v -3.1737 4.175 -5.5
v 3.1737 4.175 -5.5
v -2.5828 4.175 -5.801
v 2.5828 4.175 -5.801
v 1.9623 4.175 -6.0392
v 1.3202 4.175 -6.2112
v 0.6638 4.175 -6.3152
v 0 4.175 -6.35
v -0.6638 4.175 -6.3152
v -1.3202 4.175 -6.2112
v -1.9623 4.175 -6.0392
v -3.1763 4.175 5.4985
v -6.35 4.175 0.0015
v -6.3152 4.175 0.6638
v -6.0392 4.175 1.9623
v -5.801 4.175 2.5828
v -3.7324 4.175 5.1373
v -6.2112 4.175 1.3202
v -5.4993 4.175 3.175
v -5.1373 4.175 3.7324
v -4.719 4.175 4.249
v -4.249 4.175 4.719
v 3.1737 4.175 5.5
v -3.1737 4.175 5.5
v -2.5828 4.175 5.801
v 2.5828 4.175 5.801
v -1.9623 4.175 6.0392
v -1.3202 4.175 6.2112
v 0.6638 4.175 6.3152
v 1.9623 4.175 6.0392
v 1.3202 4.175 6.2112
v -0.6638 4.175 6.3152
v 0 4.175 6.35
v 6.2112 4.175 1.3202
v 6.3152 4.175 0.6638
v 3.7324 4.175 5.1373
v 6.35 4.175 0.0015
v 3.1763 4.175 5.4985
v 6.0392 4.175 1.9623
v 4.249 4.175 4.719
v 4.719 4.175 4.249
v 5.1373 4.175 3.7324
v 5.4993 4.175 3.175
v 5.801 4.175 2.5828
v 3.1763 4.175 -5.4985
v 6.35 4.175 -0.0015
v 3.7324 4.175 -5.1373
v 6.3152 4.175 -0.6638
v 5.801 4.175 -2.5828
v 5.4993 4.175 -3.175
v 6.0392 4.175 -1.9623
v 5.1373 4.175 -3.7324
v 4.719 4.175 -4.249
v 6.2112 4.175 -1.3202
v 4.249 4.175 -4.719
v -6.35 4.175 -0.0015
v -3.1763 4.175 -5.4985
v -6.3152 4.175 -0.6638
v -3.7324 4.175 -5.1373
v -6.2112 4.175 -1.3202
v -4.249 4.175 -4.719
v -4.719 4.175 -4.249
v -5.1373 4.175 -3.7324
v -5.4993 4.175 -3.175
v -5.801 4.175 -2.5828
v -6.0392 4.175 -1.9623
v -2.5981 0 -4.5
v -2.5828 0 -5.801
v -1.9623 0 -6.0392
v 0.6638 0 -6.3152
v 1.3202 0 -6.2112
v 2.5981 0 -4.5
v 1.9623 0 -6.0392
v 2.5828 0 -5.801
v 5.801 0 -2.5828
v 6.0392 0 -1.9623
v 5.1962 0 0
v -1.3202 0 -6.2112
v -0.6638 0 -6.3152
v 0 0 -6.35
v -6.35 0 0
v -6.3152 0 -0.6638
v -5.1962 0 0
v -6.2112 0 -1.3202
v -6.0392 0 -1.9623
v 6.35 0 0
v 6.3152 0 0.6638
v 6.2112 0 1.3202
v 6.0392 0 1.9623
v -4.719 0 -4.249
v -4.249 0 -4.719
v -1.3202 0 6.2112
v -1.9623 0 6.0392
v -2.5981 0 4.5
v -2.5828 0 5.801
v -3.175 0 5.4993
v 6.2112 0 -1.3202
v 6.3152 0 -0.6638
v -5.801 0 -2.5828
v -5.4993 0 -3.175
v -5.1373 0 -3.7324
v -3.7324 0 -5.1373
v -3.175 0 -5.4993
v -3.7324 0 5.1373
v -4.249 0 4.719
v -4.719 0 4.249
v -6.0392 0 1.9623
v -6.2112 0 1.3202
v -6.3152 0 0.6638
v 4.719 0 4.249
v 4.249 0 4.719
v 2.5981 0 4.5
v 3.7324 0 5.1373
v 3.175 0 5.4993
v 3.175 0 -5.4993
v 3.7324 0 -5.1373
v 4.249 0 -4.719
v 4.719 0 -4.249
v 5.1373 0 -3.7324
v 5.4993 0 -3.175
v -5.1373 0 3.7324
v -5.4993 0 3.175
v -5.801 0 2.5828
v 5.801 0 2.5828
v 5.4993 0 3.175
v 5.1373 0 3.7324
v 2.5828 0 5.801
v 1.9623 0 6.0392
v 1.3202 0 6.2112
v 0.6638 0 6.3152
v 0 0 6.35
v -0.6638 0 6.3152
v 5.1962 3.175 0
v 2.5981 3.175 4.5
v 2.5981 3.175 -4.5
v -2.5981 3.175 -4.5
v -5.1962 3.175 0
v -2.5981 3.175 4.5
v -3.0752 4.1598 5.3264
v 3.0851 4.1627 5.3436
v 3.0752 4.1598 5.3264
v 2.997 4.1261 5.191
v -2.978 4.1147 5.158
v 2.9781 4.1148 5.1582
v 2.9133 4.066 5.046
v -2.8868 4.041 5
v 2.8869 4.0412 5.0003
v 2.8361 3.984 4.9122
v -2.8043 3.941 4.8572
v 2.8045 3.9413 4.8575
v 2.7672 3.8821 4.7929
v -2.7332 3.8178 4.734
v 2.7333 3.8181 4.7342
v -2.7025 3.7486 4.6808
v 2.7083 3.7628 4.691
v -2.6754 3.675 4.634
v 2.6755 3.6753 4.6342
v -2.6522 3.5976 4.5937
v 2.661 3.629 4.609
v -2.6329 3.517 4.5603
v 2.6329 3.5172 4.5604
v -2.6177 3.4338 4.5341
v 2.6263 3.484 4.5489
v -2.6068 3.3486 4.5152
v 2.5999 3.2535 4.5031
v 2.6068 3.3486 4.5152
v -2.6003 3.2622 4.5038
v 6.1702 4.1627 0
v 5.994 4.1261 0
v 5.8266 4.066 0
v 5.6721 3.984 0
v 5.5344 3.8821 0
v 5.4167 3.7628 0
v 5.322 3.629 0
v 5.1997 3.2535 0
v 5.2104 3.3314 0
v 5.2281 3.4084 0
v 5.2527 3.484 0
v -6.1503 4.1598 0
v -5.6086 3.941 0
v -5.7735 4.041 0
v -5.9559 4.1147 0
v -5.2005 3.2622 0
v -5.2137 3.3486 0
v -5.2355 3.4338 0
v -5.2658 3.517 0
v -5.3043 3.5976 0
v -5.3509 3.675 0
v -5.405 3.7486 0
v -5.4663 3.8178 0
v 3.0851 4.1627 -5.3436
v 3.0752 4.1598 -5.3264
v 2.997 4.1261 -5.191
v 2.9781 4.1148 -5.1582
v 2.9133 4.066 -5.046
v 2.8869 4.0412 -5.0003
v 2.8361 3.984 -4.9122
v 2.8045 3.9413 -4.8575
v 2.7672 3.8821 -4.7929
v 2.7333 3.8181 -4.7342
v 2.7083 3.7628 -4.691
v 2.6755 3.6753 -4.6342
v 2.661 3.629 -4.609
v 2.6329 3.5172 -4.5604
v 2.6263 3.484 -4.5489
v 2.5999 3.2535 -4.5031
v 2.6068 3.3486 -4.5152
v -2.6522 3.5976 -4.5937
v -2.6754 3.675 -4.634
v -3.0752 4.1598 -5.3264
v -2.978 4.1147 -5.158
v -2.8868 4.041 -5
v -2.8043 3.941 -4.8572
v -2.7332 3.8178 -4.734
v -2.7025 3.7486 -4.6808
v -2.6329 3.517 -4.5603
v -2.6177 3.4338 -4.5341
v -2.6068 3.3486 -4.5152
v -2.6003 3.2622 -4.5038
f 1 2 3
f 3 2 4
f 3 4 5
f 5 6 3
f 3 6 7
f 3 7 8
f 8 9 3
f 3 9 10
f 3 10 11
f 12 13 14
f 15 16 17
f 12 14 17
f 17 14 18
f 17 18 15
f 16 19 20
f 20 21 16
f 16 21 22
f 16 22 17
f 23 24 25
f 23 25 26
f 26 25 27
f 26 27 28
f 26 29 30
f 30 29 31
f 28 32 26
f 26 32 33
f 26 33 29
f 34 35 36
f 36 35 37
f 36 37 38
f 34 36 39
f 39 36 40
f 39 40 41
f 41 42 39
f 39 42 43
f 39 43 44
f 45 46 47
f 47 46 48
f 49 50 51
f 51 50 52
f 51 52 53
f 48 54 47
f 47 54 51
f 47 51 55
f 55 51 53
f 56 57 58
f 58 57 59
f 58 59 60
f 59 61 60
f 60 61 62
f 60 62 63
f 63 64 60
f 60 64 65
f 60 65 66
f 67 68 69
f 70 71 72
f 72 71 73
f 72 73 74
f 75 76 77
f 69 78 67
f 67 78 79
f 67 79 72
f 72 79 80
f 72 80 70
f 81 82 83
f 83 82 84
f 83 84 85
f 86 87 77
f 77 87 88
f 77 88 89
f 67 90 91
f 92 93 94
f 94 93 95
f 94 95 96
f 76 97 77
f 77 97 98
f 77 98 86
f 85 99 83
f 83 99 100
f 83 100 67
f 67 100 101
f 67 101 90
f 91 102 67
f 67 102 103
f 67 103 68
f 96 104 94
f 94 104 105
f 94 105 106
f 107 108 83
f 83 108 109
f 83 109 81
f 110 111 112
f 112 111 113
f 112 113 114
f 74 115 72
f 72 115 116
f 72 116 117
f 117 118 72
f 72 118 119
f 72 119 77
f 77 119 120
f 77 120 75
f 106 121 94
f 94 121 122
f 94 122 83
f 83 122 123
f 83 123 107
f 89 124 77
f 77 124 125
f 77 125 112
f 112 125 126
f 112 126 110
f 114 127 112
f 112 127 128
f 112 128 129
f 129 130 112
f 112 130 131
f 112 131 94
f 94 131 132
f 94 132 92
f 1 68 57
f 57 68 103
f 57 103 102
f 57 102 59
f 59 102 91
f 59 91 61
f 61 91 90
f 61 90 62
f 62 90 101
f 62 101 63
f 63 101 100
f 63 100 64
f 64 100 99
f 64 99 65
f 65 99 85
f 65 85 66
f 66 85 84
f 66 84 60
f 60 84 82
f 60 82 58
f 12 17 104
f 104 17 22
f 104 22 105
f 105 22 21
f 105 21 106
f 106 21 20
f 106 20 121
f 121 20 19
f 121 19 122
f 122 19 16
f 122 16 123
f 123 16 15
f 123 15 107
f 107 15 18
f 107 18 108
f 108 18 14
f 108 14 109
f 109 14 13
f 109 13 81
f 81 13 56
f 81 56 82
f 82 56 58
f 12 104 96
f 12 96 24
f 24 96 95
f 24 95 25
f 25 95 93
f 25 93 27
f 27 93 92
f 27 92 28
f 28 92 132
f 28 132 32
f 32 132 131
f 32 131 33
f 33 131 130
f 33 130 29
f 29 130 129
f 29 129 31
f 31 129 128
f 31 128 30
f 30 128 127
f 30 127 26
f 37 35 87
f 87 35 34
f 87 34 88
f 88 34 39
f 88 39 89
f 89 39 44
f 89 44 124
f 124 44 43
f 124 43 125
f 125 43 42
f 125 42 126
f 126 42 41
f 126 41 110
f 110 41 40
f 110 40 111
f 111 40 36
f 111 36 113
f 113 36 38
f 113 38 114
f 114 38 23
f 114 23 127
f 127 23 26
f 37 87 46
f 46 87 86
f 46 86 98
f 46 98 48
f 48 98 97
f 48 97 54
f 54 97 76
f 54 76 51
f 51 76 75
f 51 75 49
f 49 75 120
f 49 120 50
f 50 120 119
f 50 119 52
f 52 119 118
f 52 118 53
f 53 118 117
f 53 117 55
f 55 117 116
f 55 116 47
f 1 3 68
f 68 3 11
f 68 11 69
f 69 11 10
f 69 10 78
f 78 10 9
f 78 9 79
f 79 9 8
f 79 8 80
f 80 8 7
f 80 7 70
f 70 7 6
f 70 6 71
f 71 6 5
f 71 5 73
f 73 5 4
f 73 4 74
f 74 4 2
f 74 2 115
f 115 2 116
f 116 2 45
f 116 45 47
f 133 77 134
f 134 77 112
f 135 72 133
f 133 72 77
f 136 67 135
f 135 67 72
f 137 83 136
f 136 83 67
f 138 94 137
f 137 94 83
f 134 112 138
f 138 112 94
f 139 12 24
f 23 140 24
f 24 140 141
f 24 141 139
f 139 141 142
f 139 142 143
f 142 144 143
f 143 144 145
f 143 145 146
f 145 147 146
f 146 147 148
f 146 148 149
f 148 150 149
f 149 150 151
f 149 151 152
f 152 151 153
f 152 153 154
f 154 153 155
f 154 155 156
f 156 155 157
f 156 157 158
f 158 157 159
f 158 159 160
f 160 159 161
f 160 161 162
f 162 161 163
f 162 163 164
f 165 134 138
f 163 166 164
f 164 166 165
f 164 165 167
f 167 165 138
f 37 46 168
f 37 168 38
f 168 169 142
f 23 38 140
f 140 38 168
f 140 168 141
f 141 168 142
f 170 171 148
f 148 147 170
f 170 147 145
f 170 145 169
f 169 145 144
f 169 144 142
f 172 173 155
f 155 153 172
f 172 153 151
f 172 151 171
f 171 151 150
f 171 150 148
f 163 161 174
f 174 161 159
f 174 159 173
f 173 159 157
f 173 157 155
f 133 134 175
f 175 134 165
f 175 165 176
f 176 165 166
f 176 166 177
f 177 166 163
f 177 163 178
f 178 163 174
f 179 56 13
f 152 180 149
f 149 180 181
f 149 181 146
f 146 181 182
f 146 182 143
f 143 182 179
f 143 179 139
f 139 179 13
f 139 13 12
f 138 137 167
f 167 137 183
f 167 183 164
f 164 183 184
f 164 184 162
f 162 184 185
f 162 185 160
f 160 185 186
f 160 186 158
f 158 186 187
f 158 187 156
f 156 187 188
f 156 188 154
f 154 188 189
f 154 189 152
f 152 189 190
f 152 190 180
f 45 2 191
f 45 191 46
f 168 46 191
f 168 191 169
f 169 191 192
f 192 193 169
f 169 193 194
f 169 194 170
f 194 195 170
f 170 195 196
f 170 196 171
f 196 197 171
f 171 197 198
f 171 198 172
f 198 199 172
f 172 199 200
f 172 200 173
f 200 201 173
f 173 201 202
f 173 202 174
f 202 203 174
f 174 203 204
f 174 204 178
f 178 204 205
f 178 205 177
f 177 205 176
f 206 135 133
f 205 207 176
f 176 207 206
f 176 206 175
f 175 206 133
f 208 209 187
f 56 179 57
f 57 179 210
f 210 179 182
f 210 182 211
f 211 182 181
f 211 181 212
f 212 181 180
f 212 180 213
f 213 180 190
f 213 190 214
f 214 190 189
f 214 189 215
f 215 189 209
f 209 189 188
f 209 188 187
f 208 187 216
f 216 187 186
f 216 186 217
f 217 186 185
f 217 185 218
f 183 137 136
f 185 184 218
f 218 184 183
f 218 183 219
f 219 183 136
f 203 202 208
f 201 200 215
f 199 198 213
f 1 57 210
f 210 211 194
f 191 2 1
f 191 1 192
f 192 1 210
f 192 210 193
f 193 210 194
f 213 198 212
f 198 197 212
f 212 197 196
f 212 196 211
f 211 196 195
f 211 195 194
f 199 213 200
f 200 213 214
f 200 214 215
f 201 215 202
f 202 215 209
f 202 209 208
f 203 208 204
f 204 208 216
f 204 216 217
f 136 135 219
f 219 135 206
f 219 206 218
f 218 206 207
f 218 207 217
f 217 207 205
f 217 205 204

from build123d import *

# Parameters (mm, degrees)
SKETCH1_R           = 6.35
BOSS_EXTRUDE1_DEPTH = 4.175
FILLET1_R           = 1


with BuildPart() as part:
    # Sketch1 → Boss-Extrude1 (new body)
    with BuildSketch(Plane(origin=(0, 0, 0), x_dir=(1, 0, 0), z_dir=(0, 1, 0))):
        with Locations(Location((0, 0, 0), (0, 0, 270))):
            Circle(SKETCH1_R)
        Polygon((5.196152423, 0), (2.598076211, 4.5), (-2.598076211, 4.5), (-5.196152423, 0), (-2.598076211, -4.5), (2.598076211, -4.5), align=None, mode=Mode.SUBTRACT)
    extrude(amount=BOSS_EXTRUDE1_DEPTH)

    # Fillet1
    # the kernel refuses this fillet: 1 mm, written as the material it takes off along each edge
    with BuildSketch(Plane(origin=(1.348076211, 4.175, 6.665063509), x_dir=(0, -1, 0), z_dir=(0.4999999999999997, 0, -0.8660254037844388))) as fillet1_piece_1_section:
        with BuildLine():
            CenterArc((FILLET1_R, -FILLET1_R), FILLET1_R, 90, 90)
            Line((0, -FILLET1_R), (-FILLET1_R * 0.02, -FILLET1_R))
            Line((-FILLET1_R * 0.02, -FILLET1_R), (-FILLET1_R * 0.02, FILLET1_R * 0.02))
            Line((-FILLET1_R * 0.02, FILLET1_R * 0.02), (FILLET1_R, FILLET1_R * 0.02))
            Line((FILLET1_R, FILLET1_R * 0.02), (FILLET1_R, 0))
        make_face()
    fillet1_piece_1 = extrude(amount=10.196152423, mode=Mode.PRIVATE)
    fillet1_piece_1 = split(fillet1_piece_1, bisect_by=Plane(origin=(4.083759971, 3.942180167, 4.5), z_dir=(0, 0, -1)), keep=Keep.TOP, mode=Mode.PRIVATE)
    fillet1_piece_1 = split(fillet1_piece_1, bisect_by=Plane(origin=(5.938994303, 3.942180167, 1.286639878), z_dir=(-0.8660254037844387, 0, 0.49999999999999983)), keep=Keep.TOP, mode=Mode.PRIVATE)
    add(fillet1_piece_1, mode=Mode.SUBTRACT)
    with BuildSketch(Plane(origin=(6.446152423, 4.175, 2.165063509), x_dir=(0, -1, 0), z_dir=(-0.4999999999999999, 0, -0.8660254037844388))) as fillet1_piece_2_section:
        with BuildLine():
            CenterArc((FILLET1_R, -FILLET1_R), FILLET1_R, 90, 90)
            Line((0, -FILLET1_R), (-FILLET1_R * 0.02, -FILLET1_R))
            Line((-FILLET1_R * 0.02, -FILLET1_R), (-FILLET1_R * 0.02, FILLET1_R * 0.02))
            Line((-FILLET1_R * 0.02, FILLET1_R * 0.02), (FILLET1_R, FILLET1_R * 0.02))
            Line((FILLET1_R, FILLET1_R * 0.02), (FILLET1_R, 0))
        make_face()
    fillet1_piece_2 = extrude(amount=10.196152423, mode=Mode.PRIVATE)
    fillet1_piece_2 = split(fillet1_piece_2, bisect_by=Plane(origin=(5.938994303, 3.942180167, -1.286639878), z_dir=(-0.8660254037844388, 0, -0.4999999999999997)), keep=Keep.TOP, mode=Mode.PRIVATE)
    fillet1_piece_2 = split(fillet1_piece_2, bisect_by=Plane(origin=(4.083759971, 3.942180167, -4.5), z_dir=(0, 0, 1)), keep=Keep.TOP, mode=Mode.PRIVATE)
    add(fillet1_piece_2, mode=Mode.SUBTRACT)
    with BuildSketch(Plane(origin=(5.098076211, 4.175, -4.5), x_dir=(0, -1, 0), z_dir=(-1, 0, 0))) as fillet1_piece_3_section:
        with BuildLine():
            CenterArc((FILLET1_R, -FILLET1_R), FILLET1_R, 90, 90)
            Line((0, -FILLET1_R), (-FILLET1_R * 0.02, -FILLET1_R))
            Line((-FILLET1_R * 0.02, -FILLET1_R), (-FILLET1_R * 0.02, FILLET1_R * 0.02))
            Line((-FILLET1_R * 0.02, FILLET1_R * 0.02), (FILLET1_R, FILLET1_R * 0.02))
            Line((FILLET1_R, FILLET1_R * 0.02), (FILLET1_R, 0))
        make_face()
    fillet1_piece_3 = extrude(amount=10.196152423, mode=Mode.PRIVATE)
    fillet1_piece_3 = split(fillet1_piece_3, bisect_by=Plane(origin=(-1.855234331, 3.942180167, -5.786639878), z_dir=(0.8660254037844387, 0, 0.4999999999999999)), keep=Keep.TOP, mode=Mode.PRIVATE)
    fillet1_piece_3 = split(fillet1_piece_3, bisect_by=Plane(origin=(1.855234331, 3.942180167, -5.786639878), z_dir=(-0.8660254037844387, 0, 0.49999999999999983)), keep=Keep.TOP, mode=Mode.PRIVATE)
    add(fillet1_piece_3, mode=Mode.SUBTRACT)
    with BuildSketch(Plane(origin=(-1.348076211, 4.175, -6.665063509), x_dir=(0, -1, 0), z_dir=(-0.4999999999999999, 0, 0.8660254037844387))) as fillet1_piece_4_section:
        with BuildLine():
            CenterArc((FILLET1_R, -FILLET1_R), FILLET1_R, 90, 90)
            Line((0, -FILLET1_R), (-FILLET1_R * 0.02, -FILLET1_R))
            Line((-FILLET1_R * 0.02, -FILLET1_R), (-FILLET1_R * 0.02, FILLET1_R * 0.02))
            Line((-FILLET1_R * 0.02, FILLET1_R * 0.02), (FILLET1_R, FILLET1_R * 0.02))
            Line((FILLET1_R, FILLET1_R * 0.02), (FILLET1_R, 0))
        make_face()
    fillet1_piece_4 = extrude(amount=10.196152423, mode=Mode.PRIVATE)
    fillet1_piece_4 = split(fillet1_piece_4, bisect_by=Plane(origin=(-5.938994303, 3.942180167, -1.286639878), z_dir=(0.8660254037844388, 0, -0.4999999999999998)), keep=Keep.TOP, mode=Mode.PRIVATE)
    fillet1_piece_4 = split(fillet1_piece_4, bisect_by=Plane(origin=(-4.083759971, 3.942180167, -4.5), z_dir=(0, 0, 1)), keep=Keep.TOP, mode=Mode.PRIVATE)
    add(fillet1_piece_4, mode=Mode.SUBTRACT)
    with BuildSketch(Plane(origin=(-6.446152423, 4.175, -2.165063509), x_dir=(0, -1, 0), z_dir=(0.4999999999999998, 0, 0.8660254037844388))) as fillet1_piece_5_section:
        with BuildLine():
            CenterArc((FILLET1_R, -FILLET1_R), FILLET1_R, 90, 90)
            Line((0, -FILLET1_R), (-FILLET1_R * 0.02, -FILLET1_R))
            Line((-FILLET1_R * 0.02, -FILLET1_R), (-FILLET1_R * 0.02, FILLET1_R * 0.02))
            Line((-FILLET1_R * 0.02, FILLET1_R * 0.02), (FILLET1_R, FILLET1_R * 0.02))
            Line((FILLET1_R, FILLET1_R * 0.02), (FILLET1_R, 0))
        make_face()
    fillet1_piece_5 = extrude(amount=10.196152423, mode=Mode.PRIVATE)
    fillet1_piece_5 = split(fillet1_piece_5, bisect_by=Plane(origin=(-4.083759971, 3.942180167, 4.5), z_dir=(0, 0, -1)), keep=Keep.TOP, mode=Mode.PRIVATE)
    fillet1_piece_5 = split(fillet1_piece_5, bisect_by=Plane(origin=(-5.938994303, 3.942180167, 1.286639878), z_dir=(0.8660254037844387, 0, 0.4999999999999999)), keep=Keep.TOP, mode=Mode.PRIVATE)
    add(fillet1_piece_5, mode=Mode.SUBTRACT)
    with BuildSketch(Plane(origin=(-5.098076211, 4.175, 4.5), x_dir=(0, -1, 0), z_dir=(1, 0, 0))) as fillet1_piece_6_section:
        with BuildLine():
            CenterArc((FILLET1_R, -FILLET1_R), FILLET1_R, 90, 90)
            Line((0, -FILLET1_R), (-FILLET1_R * 0.02, -FILLET1_R))
            Line((-FILLET1_R * 0.02, -FILLET1_R), (-FILLET1_R * 0.02, FILLET1_R * 0.02))
            Line((-FILLET1_R * 0.02, FILLET1_R * 0.02), (FILLET1_R, FILLET1_R * 0.02))
            Line((FILLET1_R, FILLET1_R * 0.02), (FILLET1_R, 0))
        make_face()
    fillet1_piece_6 = extrude(amount=10.196152423, mode=Mode.PRIVATE)
    fillet1_piece_6 = split(fillet1_piece_6, bisect_by=Plane(origin=(1.855234331, 3.942180167, 5.786639878), z_dir=(-0.8660254037844388, 0, -0.4999999999999997)), keep=Keep.TOP, mode=Mode.PRIVATE)
    fillet1_piece_6 = split(fillet1_piece_6, bisect_by=Plane(origin=(-1.855234331, 3.942180167, 5.786639878), z_dir=(0.8660254037844388, 0, -0.4999999999999998)), keep=Keep.TOP, mode=Mode.PRIVATE)
    add(fillet1_piece_6, mode=Mode.SUBTRACT)
    with BuildSketch(Plane(origin=(1.348076211, 4.175, 6.665063509), x_dir=(0, -1, 0), z_dir=(0.4999999999999997, 0, -0.8660254037844388))) as fillet1_piece_7a_section:
        with BuildLine():
            CenterArc((FILLET1_R, -FILLET1_R), FILLET1_R, 90, 90)
            Line((0, -FILLET1_R), (-FILLET1_R * 0.02, -FILLET1_R))
            Line((-FILLET1_R * 0.02, -FILLET1_R), (-FILLET1_R * 0.02, FILLET1_R * 0.02))
            Line((-FILLET1_R * 0.02, FILLET1_R * 0.02), (FILLET1_R, FILLET1_R * 0.02))
            Line((FILLET1_R, FILLET1_R * 0.02), (FILLET1_R, 0))
        make_face()
    fillet1_piece_7a = extrude(amount=10.196152423, mode=Mode.PRIVATE)
    fillet1_piece_7a = split(fillet1_piece_7a, bisect_by=Plane(origin=(2.212123178, 3.95463069, 4.5), z_dir=(0, 0, 1)), keep=Keep.TOP, mode=Mode.PRIVATE)
    with BuildSketch(Plane(origin=(-5.098076211, 4.175, 4.5), x_dir=(0, -1, 0), z_dir=(1, 0, 0))) as fillet1_piece_7b_section:
        with BuildLine():
            CenterArc((FILLET1_R, -FILLET1_R), FILLET1_R, 90, 90)
            Line((0, -FILLET1_R), (-FILLET1_R * 0.02, -FILLET1_R))
            Line((-FILLET1_R * 0.02, -FILLET1_R), (-FILLET1_R * 0.02, FILLET1_R * 0.02))
            Line((-FILLET1_R * 0.02, FILLET1_R * 0.02), (FILLET1_R, FILLET1_R * 0.02))
            Line((FILLET1_R, FILLET1_R * 0.02), (FILLET1_R, 0))
        make_face()
    fillet1_piece_7b = extrude(amount=10.196152423, mode=Mode.PRIVATE)
    fillet1_piece_7b = split(fillet1_piece_7b, bisect_by=Plane(origin=(2.791052728, 3.95463069, 4.165754869), z_dir=(0.8660254037844388, 0, 0.4999999999999997)), keep=Keep.TOP, mode=Mode.PRIVATE)
    fillet1_piece_7 = fillet1_piece_7a & fillet1_piece_7b
    add(fillet1_piece_7, mode=Mode.SUBTRACT)
    with BuildSketch(Plane(origin=(1.348076211, 4.175, 6.665063509), x_dir=(0, -1, 0), z_dir=(0.4999999999999997, 0, -0.8660254037844388))) as fillet1_piece_8a_section:
        with BuildLine():
            CenterArc((FILLET1_R, -FILLET1_R), FILLET1_R, 90, 90)
            Line((0, -FILLET1_R), (-FILLET1_R * 0.02, -FILLET1_R))
            Line((-FILLET1_R * 0.02, -FILLET1_R), (-FILLET1_R * 0.02, FILLET1_R * 0.02))
            Line((-FILLET1_R * 0.02, FILLET1_R * 0.02), (FILLET1_R, FILLET1_R * 0.02))
            Line((FILLET1_R, FILLET1_R * 0.02), (FILLET1_R, 0))
        make_face()
    fillet1_piece_8a = extrude(amount=10.196152423, mode=Mode.PRIVATE)
    fillet1_piece_8a = split(fillet1_piece_8a, bisect_by=Plane(origin=(5.003175906, 3.95463069, -0.334245131), z_dir=(0.8660254037844387, 0, -0.49999999999999983)), keep=Keep.TOP, mode=Mode.PRIVATE)
    with BuildSketch(Plane(origin=(6.446152423, 4.175, 2.165063509), x_dir=(0, -1, 0), z_dir=(-0.4999999999999999, 0, -0.8660254037844388))) as fillet1_piece_8b_section:
        with BuildLine():
            CenterArc((FILLET1_R, -FILLET1_R), FILLET1_R, 90, 90)
            Line((0, -FILLET1_R), (-FILLET1_R * 0.02, -FILLET1_R))
            Line((-FILLET1_R * 0.02, -FILLET1_R), (-FILLET1_R * 0.02, FILLET1_R * 0.02))
            Line((-FILLET1_R * 0.02, FILLET1_R * 0.02), (FILLET1_R, FILLET1_R * 0.02))
            Line((FILLET1_R, FILLET1_R * 0.02), (FILLET1_R, 0))
        make_face()
    fillet1_piece_8b = extrude(amount=10.196152423, mode=Mode.PRIVATE)
    fillet1_piece_8b = split(fillet1_piece_8b, bisect_by=Plane(origin=(5.003175906, 3.95463069, 0.334245131), z_dir=(0.8660254037844388, 0, 0.4999999999999997)), keep=Keep.TOP, mode=Mode.PRIVATE)
    fillet1_piece_8 = fillet1_piece_8a & fillet1_piece_8b
    add(fillet1_piece_8, mode=Mode.SUBTRACT)
    with BuildSketch(Plane(origin=(5.098076211, 4.175, -4.5), x_dir=(0, -1, 0), z_dir=(-1, 0, 0))) as fillet1_piece_9a_section:
        with BuildLine():
            CenterArc((FILLET1_R, -FILLET1_R), FILLET1_R, 90, 90)
            Line((0, -FILLET1_R), (-FILLET1_R * 0.02, -FILLET1_R))
            Line((-FILLET1_R * 0.02, -FILLET1_R), (-FILLET1_R * 0.02, FILLET1_R * 0.02))
            Line((-FILLET1_R * 0.02, FILLET1_R * 0.02), (FILLET1_R, FILLET1_R * 0.02))
            Line((FILLET1_R, FILLET1_R * 0.02), (FILLET1_R, 0))
        make_face()
    fillet1_piece_9a = extrude(amount=10.196152423, mode=Mode.PRIVATE)
    fillet1_piece_9a = split(fillet1_piece_9a, bisect_by=Plane(origin=(2.791052728, 3.95463069, -4.165754869), z_dir=(0.8660254037844387, 0, -0.49999999999999983)), keep=Keep.TOP, mode=Mode.PRIVATE)
    with BuildSketch(Plane(origin=(6.446152423, 4.175, 2.165063509), x_dir=(0, -1, 0), z_dir=(-0.4999999999999999, 0, -0.8660254037844388))) as fillet1_piece_9b_section:
        with BuildLine():
            CenterArc((FILLET1_R, -FILLET1_R), FILLET1_R, 90, 90)
            Line((0, -FILLET1_R), (-FILLET1_R * 0.02, -FILLET1_R))
            Line((-FILLET1_R * 0.02, -FILLET1_R), (-FILLET1_R * 0.02, FILLET1_R * 0.02))
            Line((-FILLET1_R * 0.02, FILLET1_R * 0.02), (FILLET1_R, FILLET1_R * 0.02))
            Line((FILLET1_R, FILLET1_R * 0.02), (FILLET1_R, 0))
        make_face()
    fillet1_piece_9b = extrude(amount=10.196152423, mode=Mode.PRIVATE)
    fillet1_piece_9b = split(fillet1_piece_9b, bisect_by=Plane(origin=(2.212123178, 3.95463069, -4.5), z_dir=(0, 0, -1)), keep=Keep.TOP, mode=Mode.PRIVATE)
    fillet1_piece_9 = fillet1_piece_9a & fillet1_piece_9b
    add(fillet1_piece_9, mode=Mode.SUBTRACT)
    with BuildSketch(Plane(origin=(-1.348076211, 4.175, -6.665063509), x_dir=(0, -1, 0), z_dir=(-0.4999999999999999, 0, 0.8660254037844387))) as fillet1_piece_10a_section:
        with BuildLine():
            CenterArc((FILLET1_R, -FILLET1_R), FILLET1_R, 90, 90)
            Line((0, -FILLET1_R), (-FILLET1_R * 0.02, -FILLET1_R))
            Line((-FILLET1_R * 0.02, -FILLET1_R), (-FILLET1_R * 0.02, FILLET1_R * 0.02))
            Line((-FILLET1_R * 0.02, FILLET1_R * 0.02), (FILLET1_R, FILLET1_R * 0.02))
            Line((FILLET1_R, FILLET1_R * 0.02), (FILLET1_R, 0))
        make_face()
    fillet1_piece_10a = extrude(amount=10.196152423, mode=Mode.PRIVATE)
    fillet1_piece_10a = split(fillet1_piece_10a, bisect_by=Plane(origin=(-2.212123178, 3.95463069, -4.5), z_dir=(0, 0, -1)), keep=Keep.TOP, mode=Mode.PRIVATE)
    with BuildSketch(Plane(origin=(5.098076211, 4.175, -4.5), x_dir=(0, -1, 0), z_dir=(-1, 0, 0))) as fillet1_piece_10b_section:
        with BuildLine():
            CenterArc((FILLET1_R, -FILLET1_R), FILLET1_R, 90, 90)
            Line((0, -FILLET1_R), (-FILLET1_R * 0.02, -FILLET1_R))
            Line((-FILLET1_R * 0.02, -FILLET1_R), (-FILLET1_R * 0.02, FILLET1_R * 0.02))
            Line((-FILLET1_R * 0.02, FILLET1_R * 0.02), (FILLET1_R, FILLET1_R * 0.02))
            Line((FILLET1_R, FILLET1_R * 0.02), (FILLET1_R, 0))
        make_face()
    fillet1_piece_10b = extrude(amount=10.196152423, mode=Mode.PRIVATE)
    fillet1_piece_10b = split(fillet1_piece_10b, bisect_by=Plane(origin=(-2.791052728, 3.95463069, -4.165754869), z_dir=(-0.8660254037844387, 0, -0.4999999999999999)), keep=Keep.TOP, mode=Mode.PRIVATE)
    fillet1_piece_10 = fillet1_piece_10a & fillet1_piece_10b
    add(fillet1_piece_10, mode=Mode.SUBTRACT)
    with BuildSketch(Plane(origin=(-6.446152423, 4.175, -2.165063509), x_dir=(0, -1, 0), z_dir=(0.4999999999999998, 0, 0.8660254037844388))) as fillet1_piece_11a_section:
        with BuildLine():
            CenterArc((FILLET1_R, -FILLET1_R), FILLET1_R, 90, 90)
            Line((0, -FILLET1_R), (-FILLET1_R * 0.02, -FILLET1_R))
            Line((-FILLET1_R * 0.02, -FILLET1_R), (-FILLET1_R * 0.02, FILLET1_R * 0.02))
            Line((-FILLET1_R * 0.02, FILLET1_R * 0.02), (FILLET1_R, FILLET1_R * 0.02))
            Line((FILLET1_R, FILLET1_R * 0.02), (FILLET1_R, 0))
        make_face()
    fillet1_piece_11a = extrude(amount=10.196152423, mode=Mode.PRIVATE)
    fillet1_piece_11a = split(fillet1_piece_11a, bisect_by=Plane(origin=(-5.003175906, 3.95463069, -0.334245131), z_dir=(-0.8660254037844387, 0, -0.4999999999999999)), keep=Keep.TOP, mode=Mode.PRIVATE)
    with BuildSketch(Plane(origin=(-1.348076211, 4.175, -6.665063509), x_dir=(0, -1, 0), z_dir=(-0.4999999999999999, 0, 0.8660254037844387))) as fillet1_piece_11b_section:
        with BuildLine():
            CenterArc((FILLET1_R, -FILLET1_R), FILLET1_R, 90, 90)
            Line((0, -FILLET1_R), (-FILLET1_R * 0.02, -FILLET1_R))
            Line((-FILLET1_R * 0.02, -FILLET1_R), (-FILLET1_R * 0.02, FILLET1_R * 0.02))
            Line((-FILLET1_R * 0.02, FILLET1_R * 0.02), (FILLET1_R, FILLET1_R * 0.02))
            Line((FILLET1_R, FILLET1_R * 0.02), (FILLET1_R, 0))
        make_face()
    fillet1_piece_11b = extrude(amount=10.196152423, mode=Mode.PRIVATE)
    fillet1_piece_11b = split(fillet1_piece_11b, bisect_by=Plane(origin=(-5.003175906, 3.95463069, 0.334245131), z_dir=(-0.8660254037844388, 0, 0.4999999999999998)), keep=Keep.TOP, mode=Mode.PRIVATE)
    fillet1_piece_11 = fillet1_piece_11a & fillet1_piece_11b
    add(fillet1_piece_11, mode=Mode.SUBTRACT)
    with BuildSketch(Plane(origin=(-5.098076211, 4.175, 4.5), x_dir=(0, -1, 0), z_dir=(1, 0, 0))) as fillet1_piece_12a_section:
        with BuildLine():
            CenterArc((FILLET1_R, -FILLET1_R), FILLET1_R, 90, 90)
            Line((0, -FILLET1_R), (-FILLET1_R * 0.02, -FILLET1_R))
            Line((-FILLET1_R * 0.02, -FILLET1_R), (-FILLET1_R * 0.02, FILLET1_R * 0.02))
            Line((-FILLET1_R * 0.02, FILLET1_R * 0.02), (FILLET1_R, FILLET1_R * 0.02))
            Line((FILLET1_R, FILLET1_R * 0.02), (FILLET1_R, 0))
        make_face()
    fillet1_piece_12a = extrude(amount=10.196152423, mode=Mode.PRIVATE)
    fillet1_piece_12a = split(fillet1_piece_12a, bisect_by=Plane(origin=(-2.791052728, 3.95463069, 4.165754869), z_dir=(-0.8660254037844388, 0, 0.4999999999999998)), keep=Keep.TOP, mode=Mode.PRIVATE)
    with BuildSketch(Plane(origin=(-6.446152423, 4.175, -2.165063509), x_dir=(0, -1, 0), z_dir=(0.4999999999999998, 0, 0.8660254037844388))) as fillet1_piece_12b_section:
        with BuildLine():
            CenterArc((FILLET1_R, -FILLET1_R), FILLET1_R, 90, 90)
            Line((0, -FILLET1_R), (-FILLET1_R * 0.02, -FILLET1_R))
            Line((-FILLET1_R * 0.02, -FILLET1_R), (-FILLET1_R * 0.02, FILLET1_R * 0.02))
            Line((-FILLET1_R * 0.02, FILLET1_R * 0.02), (FILLET1_R, FILLET1_R * 0.02))
            Line((FILLET1_R, FILLET1_R * 0.02), (FILLET1_R, 0))
        make_face()
    fillet1_piece_12b = extrude(amount=10.196152423, mode=Mode.PRIVATE)
    fillet1_piece_12b = split(fillet1_piece_12b, bisect_by=Plane(origin=(-2.212123178, 3.95463069, 4.5), z_dir=(0, 0, 1)), keep=Keep.TOP, mode=Mode.PRIVATE)
    fillet1_piece_12 = fillet1_piece_12a & fillet1_piece_12b
    add(fillet1_piece_12, mode=Mode.SUBTRACT)


solid = part.part
